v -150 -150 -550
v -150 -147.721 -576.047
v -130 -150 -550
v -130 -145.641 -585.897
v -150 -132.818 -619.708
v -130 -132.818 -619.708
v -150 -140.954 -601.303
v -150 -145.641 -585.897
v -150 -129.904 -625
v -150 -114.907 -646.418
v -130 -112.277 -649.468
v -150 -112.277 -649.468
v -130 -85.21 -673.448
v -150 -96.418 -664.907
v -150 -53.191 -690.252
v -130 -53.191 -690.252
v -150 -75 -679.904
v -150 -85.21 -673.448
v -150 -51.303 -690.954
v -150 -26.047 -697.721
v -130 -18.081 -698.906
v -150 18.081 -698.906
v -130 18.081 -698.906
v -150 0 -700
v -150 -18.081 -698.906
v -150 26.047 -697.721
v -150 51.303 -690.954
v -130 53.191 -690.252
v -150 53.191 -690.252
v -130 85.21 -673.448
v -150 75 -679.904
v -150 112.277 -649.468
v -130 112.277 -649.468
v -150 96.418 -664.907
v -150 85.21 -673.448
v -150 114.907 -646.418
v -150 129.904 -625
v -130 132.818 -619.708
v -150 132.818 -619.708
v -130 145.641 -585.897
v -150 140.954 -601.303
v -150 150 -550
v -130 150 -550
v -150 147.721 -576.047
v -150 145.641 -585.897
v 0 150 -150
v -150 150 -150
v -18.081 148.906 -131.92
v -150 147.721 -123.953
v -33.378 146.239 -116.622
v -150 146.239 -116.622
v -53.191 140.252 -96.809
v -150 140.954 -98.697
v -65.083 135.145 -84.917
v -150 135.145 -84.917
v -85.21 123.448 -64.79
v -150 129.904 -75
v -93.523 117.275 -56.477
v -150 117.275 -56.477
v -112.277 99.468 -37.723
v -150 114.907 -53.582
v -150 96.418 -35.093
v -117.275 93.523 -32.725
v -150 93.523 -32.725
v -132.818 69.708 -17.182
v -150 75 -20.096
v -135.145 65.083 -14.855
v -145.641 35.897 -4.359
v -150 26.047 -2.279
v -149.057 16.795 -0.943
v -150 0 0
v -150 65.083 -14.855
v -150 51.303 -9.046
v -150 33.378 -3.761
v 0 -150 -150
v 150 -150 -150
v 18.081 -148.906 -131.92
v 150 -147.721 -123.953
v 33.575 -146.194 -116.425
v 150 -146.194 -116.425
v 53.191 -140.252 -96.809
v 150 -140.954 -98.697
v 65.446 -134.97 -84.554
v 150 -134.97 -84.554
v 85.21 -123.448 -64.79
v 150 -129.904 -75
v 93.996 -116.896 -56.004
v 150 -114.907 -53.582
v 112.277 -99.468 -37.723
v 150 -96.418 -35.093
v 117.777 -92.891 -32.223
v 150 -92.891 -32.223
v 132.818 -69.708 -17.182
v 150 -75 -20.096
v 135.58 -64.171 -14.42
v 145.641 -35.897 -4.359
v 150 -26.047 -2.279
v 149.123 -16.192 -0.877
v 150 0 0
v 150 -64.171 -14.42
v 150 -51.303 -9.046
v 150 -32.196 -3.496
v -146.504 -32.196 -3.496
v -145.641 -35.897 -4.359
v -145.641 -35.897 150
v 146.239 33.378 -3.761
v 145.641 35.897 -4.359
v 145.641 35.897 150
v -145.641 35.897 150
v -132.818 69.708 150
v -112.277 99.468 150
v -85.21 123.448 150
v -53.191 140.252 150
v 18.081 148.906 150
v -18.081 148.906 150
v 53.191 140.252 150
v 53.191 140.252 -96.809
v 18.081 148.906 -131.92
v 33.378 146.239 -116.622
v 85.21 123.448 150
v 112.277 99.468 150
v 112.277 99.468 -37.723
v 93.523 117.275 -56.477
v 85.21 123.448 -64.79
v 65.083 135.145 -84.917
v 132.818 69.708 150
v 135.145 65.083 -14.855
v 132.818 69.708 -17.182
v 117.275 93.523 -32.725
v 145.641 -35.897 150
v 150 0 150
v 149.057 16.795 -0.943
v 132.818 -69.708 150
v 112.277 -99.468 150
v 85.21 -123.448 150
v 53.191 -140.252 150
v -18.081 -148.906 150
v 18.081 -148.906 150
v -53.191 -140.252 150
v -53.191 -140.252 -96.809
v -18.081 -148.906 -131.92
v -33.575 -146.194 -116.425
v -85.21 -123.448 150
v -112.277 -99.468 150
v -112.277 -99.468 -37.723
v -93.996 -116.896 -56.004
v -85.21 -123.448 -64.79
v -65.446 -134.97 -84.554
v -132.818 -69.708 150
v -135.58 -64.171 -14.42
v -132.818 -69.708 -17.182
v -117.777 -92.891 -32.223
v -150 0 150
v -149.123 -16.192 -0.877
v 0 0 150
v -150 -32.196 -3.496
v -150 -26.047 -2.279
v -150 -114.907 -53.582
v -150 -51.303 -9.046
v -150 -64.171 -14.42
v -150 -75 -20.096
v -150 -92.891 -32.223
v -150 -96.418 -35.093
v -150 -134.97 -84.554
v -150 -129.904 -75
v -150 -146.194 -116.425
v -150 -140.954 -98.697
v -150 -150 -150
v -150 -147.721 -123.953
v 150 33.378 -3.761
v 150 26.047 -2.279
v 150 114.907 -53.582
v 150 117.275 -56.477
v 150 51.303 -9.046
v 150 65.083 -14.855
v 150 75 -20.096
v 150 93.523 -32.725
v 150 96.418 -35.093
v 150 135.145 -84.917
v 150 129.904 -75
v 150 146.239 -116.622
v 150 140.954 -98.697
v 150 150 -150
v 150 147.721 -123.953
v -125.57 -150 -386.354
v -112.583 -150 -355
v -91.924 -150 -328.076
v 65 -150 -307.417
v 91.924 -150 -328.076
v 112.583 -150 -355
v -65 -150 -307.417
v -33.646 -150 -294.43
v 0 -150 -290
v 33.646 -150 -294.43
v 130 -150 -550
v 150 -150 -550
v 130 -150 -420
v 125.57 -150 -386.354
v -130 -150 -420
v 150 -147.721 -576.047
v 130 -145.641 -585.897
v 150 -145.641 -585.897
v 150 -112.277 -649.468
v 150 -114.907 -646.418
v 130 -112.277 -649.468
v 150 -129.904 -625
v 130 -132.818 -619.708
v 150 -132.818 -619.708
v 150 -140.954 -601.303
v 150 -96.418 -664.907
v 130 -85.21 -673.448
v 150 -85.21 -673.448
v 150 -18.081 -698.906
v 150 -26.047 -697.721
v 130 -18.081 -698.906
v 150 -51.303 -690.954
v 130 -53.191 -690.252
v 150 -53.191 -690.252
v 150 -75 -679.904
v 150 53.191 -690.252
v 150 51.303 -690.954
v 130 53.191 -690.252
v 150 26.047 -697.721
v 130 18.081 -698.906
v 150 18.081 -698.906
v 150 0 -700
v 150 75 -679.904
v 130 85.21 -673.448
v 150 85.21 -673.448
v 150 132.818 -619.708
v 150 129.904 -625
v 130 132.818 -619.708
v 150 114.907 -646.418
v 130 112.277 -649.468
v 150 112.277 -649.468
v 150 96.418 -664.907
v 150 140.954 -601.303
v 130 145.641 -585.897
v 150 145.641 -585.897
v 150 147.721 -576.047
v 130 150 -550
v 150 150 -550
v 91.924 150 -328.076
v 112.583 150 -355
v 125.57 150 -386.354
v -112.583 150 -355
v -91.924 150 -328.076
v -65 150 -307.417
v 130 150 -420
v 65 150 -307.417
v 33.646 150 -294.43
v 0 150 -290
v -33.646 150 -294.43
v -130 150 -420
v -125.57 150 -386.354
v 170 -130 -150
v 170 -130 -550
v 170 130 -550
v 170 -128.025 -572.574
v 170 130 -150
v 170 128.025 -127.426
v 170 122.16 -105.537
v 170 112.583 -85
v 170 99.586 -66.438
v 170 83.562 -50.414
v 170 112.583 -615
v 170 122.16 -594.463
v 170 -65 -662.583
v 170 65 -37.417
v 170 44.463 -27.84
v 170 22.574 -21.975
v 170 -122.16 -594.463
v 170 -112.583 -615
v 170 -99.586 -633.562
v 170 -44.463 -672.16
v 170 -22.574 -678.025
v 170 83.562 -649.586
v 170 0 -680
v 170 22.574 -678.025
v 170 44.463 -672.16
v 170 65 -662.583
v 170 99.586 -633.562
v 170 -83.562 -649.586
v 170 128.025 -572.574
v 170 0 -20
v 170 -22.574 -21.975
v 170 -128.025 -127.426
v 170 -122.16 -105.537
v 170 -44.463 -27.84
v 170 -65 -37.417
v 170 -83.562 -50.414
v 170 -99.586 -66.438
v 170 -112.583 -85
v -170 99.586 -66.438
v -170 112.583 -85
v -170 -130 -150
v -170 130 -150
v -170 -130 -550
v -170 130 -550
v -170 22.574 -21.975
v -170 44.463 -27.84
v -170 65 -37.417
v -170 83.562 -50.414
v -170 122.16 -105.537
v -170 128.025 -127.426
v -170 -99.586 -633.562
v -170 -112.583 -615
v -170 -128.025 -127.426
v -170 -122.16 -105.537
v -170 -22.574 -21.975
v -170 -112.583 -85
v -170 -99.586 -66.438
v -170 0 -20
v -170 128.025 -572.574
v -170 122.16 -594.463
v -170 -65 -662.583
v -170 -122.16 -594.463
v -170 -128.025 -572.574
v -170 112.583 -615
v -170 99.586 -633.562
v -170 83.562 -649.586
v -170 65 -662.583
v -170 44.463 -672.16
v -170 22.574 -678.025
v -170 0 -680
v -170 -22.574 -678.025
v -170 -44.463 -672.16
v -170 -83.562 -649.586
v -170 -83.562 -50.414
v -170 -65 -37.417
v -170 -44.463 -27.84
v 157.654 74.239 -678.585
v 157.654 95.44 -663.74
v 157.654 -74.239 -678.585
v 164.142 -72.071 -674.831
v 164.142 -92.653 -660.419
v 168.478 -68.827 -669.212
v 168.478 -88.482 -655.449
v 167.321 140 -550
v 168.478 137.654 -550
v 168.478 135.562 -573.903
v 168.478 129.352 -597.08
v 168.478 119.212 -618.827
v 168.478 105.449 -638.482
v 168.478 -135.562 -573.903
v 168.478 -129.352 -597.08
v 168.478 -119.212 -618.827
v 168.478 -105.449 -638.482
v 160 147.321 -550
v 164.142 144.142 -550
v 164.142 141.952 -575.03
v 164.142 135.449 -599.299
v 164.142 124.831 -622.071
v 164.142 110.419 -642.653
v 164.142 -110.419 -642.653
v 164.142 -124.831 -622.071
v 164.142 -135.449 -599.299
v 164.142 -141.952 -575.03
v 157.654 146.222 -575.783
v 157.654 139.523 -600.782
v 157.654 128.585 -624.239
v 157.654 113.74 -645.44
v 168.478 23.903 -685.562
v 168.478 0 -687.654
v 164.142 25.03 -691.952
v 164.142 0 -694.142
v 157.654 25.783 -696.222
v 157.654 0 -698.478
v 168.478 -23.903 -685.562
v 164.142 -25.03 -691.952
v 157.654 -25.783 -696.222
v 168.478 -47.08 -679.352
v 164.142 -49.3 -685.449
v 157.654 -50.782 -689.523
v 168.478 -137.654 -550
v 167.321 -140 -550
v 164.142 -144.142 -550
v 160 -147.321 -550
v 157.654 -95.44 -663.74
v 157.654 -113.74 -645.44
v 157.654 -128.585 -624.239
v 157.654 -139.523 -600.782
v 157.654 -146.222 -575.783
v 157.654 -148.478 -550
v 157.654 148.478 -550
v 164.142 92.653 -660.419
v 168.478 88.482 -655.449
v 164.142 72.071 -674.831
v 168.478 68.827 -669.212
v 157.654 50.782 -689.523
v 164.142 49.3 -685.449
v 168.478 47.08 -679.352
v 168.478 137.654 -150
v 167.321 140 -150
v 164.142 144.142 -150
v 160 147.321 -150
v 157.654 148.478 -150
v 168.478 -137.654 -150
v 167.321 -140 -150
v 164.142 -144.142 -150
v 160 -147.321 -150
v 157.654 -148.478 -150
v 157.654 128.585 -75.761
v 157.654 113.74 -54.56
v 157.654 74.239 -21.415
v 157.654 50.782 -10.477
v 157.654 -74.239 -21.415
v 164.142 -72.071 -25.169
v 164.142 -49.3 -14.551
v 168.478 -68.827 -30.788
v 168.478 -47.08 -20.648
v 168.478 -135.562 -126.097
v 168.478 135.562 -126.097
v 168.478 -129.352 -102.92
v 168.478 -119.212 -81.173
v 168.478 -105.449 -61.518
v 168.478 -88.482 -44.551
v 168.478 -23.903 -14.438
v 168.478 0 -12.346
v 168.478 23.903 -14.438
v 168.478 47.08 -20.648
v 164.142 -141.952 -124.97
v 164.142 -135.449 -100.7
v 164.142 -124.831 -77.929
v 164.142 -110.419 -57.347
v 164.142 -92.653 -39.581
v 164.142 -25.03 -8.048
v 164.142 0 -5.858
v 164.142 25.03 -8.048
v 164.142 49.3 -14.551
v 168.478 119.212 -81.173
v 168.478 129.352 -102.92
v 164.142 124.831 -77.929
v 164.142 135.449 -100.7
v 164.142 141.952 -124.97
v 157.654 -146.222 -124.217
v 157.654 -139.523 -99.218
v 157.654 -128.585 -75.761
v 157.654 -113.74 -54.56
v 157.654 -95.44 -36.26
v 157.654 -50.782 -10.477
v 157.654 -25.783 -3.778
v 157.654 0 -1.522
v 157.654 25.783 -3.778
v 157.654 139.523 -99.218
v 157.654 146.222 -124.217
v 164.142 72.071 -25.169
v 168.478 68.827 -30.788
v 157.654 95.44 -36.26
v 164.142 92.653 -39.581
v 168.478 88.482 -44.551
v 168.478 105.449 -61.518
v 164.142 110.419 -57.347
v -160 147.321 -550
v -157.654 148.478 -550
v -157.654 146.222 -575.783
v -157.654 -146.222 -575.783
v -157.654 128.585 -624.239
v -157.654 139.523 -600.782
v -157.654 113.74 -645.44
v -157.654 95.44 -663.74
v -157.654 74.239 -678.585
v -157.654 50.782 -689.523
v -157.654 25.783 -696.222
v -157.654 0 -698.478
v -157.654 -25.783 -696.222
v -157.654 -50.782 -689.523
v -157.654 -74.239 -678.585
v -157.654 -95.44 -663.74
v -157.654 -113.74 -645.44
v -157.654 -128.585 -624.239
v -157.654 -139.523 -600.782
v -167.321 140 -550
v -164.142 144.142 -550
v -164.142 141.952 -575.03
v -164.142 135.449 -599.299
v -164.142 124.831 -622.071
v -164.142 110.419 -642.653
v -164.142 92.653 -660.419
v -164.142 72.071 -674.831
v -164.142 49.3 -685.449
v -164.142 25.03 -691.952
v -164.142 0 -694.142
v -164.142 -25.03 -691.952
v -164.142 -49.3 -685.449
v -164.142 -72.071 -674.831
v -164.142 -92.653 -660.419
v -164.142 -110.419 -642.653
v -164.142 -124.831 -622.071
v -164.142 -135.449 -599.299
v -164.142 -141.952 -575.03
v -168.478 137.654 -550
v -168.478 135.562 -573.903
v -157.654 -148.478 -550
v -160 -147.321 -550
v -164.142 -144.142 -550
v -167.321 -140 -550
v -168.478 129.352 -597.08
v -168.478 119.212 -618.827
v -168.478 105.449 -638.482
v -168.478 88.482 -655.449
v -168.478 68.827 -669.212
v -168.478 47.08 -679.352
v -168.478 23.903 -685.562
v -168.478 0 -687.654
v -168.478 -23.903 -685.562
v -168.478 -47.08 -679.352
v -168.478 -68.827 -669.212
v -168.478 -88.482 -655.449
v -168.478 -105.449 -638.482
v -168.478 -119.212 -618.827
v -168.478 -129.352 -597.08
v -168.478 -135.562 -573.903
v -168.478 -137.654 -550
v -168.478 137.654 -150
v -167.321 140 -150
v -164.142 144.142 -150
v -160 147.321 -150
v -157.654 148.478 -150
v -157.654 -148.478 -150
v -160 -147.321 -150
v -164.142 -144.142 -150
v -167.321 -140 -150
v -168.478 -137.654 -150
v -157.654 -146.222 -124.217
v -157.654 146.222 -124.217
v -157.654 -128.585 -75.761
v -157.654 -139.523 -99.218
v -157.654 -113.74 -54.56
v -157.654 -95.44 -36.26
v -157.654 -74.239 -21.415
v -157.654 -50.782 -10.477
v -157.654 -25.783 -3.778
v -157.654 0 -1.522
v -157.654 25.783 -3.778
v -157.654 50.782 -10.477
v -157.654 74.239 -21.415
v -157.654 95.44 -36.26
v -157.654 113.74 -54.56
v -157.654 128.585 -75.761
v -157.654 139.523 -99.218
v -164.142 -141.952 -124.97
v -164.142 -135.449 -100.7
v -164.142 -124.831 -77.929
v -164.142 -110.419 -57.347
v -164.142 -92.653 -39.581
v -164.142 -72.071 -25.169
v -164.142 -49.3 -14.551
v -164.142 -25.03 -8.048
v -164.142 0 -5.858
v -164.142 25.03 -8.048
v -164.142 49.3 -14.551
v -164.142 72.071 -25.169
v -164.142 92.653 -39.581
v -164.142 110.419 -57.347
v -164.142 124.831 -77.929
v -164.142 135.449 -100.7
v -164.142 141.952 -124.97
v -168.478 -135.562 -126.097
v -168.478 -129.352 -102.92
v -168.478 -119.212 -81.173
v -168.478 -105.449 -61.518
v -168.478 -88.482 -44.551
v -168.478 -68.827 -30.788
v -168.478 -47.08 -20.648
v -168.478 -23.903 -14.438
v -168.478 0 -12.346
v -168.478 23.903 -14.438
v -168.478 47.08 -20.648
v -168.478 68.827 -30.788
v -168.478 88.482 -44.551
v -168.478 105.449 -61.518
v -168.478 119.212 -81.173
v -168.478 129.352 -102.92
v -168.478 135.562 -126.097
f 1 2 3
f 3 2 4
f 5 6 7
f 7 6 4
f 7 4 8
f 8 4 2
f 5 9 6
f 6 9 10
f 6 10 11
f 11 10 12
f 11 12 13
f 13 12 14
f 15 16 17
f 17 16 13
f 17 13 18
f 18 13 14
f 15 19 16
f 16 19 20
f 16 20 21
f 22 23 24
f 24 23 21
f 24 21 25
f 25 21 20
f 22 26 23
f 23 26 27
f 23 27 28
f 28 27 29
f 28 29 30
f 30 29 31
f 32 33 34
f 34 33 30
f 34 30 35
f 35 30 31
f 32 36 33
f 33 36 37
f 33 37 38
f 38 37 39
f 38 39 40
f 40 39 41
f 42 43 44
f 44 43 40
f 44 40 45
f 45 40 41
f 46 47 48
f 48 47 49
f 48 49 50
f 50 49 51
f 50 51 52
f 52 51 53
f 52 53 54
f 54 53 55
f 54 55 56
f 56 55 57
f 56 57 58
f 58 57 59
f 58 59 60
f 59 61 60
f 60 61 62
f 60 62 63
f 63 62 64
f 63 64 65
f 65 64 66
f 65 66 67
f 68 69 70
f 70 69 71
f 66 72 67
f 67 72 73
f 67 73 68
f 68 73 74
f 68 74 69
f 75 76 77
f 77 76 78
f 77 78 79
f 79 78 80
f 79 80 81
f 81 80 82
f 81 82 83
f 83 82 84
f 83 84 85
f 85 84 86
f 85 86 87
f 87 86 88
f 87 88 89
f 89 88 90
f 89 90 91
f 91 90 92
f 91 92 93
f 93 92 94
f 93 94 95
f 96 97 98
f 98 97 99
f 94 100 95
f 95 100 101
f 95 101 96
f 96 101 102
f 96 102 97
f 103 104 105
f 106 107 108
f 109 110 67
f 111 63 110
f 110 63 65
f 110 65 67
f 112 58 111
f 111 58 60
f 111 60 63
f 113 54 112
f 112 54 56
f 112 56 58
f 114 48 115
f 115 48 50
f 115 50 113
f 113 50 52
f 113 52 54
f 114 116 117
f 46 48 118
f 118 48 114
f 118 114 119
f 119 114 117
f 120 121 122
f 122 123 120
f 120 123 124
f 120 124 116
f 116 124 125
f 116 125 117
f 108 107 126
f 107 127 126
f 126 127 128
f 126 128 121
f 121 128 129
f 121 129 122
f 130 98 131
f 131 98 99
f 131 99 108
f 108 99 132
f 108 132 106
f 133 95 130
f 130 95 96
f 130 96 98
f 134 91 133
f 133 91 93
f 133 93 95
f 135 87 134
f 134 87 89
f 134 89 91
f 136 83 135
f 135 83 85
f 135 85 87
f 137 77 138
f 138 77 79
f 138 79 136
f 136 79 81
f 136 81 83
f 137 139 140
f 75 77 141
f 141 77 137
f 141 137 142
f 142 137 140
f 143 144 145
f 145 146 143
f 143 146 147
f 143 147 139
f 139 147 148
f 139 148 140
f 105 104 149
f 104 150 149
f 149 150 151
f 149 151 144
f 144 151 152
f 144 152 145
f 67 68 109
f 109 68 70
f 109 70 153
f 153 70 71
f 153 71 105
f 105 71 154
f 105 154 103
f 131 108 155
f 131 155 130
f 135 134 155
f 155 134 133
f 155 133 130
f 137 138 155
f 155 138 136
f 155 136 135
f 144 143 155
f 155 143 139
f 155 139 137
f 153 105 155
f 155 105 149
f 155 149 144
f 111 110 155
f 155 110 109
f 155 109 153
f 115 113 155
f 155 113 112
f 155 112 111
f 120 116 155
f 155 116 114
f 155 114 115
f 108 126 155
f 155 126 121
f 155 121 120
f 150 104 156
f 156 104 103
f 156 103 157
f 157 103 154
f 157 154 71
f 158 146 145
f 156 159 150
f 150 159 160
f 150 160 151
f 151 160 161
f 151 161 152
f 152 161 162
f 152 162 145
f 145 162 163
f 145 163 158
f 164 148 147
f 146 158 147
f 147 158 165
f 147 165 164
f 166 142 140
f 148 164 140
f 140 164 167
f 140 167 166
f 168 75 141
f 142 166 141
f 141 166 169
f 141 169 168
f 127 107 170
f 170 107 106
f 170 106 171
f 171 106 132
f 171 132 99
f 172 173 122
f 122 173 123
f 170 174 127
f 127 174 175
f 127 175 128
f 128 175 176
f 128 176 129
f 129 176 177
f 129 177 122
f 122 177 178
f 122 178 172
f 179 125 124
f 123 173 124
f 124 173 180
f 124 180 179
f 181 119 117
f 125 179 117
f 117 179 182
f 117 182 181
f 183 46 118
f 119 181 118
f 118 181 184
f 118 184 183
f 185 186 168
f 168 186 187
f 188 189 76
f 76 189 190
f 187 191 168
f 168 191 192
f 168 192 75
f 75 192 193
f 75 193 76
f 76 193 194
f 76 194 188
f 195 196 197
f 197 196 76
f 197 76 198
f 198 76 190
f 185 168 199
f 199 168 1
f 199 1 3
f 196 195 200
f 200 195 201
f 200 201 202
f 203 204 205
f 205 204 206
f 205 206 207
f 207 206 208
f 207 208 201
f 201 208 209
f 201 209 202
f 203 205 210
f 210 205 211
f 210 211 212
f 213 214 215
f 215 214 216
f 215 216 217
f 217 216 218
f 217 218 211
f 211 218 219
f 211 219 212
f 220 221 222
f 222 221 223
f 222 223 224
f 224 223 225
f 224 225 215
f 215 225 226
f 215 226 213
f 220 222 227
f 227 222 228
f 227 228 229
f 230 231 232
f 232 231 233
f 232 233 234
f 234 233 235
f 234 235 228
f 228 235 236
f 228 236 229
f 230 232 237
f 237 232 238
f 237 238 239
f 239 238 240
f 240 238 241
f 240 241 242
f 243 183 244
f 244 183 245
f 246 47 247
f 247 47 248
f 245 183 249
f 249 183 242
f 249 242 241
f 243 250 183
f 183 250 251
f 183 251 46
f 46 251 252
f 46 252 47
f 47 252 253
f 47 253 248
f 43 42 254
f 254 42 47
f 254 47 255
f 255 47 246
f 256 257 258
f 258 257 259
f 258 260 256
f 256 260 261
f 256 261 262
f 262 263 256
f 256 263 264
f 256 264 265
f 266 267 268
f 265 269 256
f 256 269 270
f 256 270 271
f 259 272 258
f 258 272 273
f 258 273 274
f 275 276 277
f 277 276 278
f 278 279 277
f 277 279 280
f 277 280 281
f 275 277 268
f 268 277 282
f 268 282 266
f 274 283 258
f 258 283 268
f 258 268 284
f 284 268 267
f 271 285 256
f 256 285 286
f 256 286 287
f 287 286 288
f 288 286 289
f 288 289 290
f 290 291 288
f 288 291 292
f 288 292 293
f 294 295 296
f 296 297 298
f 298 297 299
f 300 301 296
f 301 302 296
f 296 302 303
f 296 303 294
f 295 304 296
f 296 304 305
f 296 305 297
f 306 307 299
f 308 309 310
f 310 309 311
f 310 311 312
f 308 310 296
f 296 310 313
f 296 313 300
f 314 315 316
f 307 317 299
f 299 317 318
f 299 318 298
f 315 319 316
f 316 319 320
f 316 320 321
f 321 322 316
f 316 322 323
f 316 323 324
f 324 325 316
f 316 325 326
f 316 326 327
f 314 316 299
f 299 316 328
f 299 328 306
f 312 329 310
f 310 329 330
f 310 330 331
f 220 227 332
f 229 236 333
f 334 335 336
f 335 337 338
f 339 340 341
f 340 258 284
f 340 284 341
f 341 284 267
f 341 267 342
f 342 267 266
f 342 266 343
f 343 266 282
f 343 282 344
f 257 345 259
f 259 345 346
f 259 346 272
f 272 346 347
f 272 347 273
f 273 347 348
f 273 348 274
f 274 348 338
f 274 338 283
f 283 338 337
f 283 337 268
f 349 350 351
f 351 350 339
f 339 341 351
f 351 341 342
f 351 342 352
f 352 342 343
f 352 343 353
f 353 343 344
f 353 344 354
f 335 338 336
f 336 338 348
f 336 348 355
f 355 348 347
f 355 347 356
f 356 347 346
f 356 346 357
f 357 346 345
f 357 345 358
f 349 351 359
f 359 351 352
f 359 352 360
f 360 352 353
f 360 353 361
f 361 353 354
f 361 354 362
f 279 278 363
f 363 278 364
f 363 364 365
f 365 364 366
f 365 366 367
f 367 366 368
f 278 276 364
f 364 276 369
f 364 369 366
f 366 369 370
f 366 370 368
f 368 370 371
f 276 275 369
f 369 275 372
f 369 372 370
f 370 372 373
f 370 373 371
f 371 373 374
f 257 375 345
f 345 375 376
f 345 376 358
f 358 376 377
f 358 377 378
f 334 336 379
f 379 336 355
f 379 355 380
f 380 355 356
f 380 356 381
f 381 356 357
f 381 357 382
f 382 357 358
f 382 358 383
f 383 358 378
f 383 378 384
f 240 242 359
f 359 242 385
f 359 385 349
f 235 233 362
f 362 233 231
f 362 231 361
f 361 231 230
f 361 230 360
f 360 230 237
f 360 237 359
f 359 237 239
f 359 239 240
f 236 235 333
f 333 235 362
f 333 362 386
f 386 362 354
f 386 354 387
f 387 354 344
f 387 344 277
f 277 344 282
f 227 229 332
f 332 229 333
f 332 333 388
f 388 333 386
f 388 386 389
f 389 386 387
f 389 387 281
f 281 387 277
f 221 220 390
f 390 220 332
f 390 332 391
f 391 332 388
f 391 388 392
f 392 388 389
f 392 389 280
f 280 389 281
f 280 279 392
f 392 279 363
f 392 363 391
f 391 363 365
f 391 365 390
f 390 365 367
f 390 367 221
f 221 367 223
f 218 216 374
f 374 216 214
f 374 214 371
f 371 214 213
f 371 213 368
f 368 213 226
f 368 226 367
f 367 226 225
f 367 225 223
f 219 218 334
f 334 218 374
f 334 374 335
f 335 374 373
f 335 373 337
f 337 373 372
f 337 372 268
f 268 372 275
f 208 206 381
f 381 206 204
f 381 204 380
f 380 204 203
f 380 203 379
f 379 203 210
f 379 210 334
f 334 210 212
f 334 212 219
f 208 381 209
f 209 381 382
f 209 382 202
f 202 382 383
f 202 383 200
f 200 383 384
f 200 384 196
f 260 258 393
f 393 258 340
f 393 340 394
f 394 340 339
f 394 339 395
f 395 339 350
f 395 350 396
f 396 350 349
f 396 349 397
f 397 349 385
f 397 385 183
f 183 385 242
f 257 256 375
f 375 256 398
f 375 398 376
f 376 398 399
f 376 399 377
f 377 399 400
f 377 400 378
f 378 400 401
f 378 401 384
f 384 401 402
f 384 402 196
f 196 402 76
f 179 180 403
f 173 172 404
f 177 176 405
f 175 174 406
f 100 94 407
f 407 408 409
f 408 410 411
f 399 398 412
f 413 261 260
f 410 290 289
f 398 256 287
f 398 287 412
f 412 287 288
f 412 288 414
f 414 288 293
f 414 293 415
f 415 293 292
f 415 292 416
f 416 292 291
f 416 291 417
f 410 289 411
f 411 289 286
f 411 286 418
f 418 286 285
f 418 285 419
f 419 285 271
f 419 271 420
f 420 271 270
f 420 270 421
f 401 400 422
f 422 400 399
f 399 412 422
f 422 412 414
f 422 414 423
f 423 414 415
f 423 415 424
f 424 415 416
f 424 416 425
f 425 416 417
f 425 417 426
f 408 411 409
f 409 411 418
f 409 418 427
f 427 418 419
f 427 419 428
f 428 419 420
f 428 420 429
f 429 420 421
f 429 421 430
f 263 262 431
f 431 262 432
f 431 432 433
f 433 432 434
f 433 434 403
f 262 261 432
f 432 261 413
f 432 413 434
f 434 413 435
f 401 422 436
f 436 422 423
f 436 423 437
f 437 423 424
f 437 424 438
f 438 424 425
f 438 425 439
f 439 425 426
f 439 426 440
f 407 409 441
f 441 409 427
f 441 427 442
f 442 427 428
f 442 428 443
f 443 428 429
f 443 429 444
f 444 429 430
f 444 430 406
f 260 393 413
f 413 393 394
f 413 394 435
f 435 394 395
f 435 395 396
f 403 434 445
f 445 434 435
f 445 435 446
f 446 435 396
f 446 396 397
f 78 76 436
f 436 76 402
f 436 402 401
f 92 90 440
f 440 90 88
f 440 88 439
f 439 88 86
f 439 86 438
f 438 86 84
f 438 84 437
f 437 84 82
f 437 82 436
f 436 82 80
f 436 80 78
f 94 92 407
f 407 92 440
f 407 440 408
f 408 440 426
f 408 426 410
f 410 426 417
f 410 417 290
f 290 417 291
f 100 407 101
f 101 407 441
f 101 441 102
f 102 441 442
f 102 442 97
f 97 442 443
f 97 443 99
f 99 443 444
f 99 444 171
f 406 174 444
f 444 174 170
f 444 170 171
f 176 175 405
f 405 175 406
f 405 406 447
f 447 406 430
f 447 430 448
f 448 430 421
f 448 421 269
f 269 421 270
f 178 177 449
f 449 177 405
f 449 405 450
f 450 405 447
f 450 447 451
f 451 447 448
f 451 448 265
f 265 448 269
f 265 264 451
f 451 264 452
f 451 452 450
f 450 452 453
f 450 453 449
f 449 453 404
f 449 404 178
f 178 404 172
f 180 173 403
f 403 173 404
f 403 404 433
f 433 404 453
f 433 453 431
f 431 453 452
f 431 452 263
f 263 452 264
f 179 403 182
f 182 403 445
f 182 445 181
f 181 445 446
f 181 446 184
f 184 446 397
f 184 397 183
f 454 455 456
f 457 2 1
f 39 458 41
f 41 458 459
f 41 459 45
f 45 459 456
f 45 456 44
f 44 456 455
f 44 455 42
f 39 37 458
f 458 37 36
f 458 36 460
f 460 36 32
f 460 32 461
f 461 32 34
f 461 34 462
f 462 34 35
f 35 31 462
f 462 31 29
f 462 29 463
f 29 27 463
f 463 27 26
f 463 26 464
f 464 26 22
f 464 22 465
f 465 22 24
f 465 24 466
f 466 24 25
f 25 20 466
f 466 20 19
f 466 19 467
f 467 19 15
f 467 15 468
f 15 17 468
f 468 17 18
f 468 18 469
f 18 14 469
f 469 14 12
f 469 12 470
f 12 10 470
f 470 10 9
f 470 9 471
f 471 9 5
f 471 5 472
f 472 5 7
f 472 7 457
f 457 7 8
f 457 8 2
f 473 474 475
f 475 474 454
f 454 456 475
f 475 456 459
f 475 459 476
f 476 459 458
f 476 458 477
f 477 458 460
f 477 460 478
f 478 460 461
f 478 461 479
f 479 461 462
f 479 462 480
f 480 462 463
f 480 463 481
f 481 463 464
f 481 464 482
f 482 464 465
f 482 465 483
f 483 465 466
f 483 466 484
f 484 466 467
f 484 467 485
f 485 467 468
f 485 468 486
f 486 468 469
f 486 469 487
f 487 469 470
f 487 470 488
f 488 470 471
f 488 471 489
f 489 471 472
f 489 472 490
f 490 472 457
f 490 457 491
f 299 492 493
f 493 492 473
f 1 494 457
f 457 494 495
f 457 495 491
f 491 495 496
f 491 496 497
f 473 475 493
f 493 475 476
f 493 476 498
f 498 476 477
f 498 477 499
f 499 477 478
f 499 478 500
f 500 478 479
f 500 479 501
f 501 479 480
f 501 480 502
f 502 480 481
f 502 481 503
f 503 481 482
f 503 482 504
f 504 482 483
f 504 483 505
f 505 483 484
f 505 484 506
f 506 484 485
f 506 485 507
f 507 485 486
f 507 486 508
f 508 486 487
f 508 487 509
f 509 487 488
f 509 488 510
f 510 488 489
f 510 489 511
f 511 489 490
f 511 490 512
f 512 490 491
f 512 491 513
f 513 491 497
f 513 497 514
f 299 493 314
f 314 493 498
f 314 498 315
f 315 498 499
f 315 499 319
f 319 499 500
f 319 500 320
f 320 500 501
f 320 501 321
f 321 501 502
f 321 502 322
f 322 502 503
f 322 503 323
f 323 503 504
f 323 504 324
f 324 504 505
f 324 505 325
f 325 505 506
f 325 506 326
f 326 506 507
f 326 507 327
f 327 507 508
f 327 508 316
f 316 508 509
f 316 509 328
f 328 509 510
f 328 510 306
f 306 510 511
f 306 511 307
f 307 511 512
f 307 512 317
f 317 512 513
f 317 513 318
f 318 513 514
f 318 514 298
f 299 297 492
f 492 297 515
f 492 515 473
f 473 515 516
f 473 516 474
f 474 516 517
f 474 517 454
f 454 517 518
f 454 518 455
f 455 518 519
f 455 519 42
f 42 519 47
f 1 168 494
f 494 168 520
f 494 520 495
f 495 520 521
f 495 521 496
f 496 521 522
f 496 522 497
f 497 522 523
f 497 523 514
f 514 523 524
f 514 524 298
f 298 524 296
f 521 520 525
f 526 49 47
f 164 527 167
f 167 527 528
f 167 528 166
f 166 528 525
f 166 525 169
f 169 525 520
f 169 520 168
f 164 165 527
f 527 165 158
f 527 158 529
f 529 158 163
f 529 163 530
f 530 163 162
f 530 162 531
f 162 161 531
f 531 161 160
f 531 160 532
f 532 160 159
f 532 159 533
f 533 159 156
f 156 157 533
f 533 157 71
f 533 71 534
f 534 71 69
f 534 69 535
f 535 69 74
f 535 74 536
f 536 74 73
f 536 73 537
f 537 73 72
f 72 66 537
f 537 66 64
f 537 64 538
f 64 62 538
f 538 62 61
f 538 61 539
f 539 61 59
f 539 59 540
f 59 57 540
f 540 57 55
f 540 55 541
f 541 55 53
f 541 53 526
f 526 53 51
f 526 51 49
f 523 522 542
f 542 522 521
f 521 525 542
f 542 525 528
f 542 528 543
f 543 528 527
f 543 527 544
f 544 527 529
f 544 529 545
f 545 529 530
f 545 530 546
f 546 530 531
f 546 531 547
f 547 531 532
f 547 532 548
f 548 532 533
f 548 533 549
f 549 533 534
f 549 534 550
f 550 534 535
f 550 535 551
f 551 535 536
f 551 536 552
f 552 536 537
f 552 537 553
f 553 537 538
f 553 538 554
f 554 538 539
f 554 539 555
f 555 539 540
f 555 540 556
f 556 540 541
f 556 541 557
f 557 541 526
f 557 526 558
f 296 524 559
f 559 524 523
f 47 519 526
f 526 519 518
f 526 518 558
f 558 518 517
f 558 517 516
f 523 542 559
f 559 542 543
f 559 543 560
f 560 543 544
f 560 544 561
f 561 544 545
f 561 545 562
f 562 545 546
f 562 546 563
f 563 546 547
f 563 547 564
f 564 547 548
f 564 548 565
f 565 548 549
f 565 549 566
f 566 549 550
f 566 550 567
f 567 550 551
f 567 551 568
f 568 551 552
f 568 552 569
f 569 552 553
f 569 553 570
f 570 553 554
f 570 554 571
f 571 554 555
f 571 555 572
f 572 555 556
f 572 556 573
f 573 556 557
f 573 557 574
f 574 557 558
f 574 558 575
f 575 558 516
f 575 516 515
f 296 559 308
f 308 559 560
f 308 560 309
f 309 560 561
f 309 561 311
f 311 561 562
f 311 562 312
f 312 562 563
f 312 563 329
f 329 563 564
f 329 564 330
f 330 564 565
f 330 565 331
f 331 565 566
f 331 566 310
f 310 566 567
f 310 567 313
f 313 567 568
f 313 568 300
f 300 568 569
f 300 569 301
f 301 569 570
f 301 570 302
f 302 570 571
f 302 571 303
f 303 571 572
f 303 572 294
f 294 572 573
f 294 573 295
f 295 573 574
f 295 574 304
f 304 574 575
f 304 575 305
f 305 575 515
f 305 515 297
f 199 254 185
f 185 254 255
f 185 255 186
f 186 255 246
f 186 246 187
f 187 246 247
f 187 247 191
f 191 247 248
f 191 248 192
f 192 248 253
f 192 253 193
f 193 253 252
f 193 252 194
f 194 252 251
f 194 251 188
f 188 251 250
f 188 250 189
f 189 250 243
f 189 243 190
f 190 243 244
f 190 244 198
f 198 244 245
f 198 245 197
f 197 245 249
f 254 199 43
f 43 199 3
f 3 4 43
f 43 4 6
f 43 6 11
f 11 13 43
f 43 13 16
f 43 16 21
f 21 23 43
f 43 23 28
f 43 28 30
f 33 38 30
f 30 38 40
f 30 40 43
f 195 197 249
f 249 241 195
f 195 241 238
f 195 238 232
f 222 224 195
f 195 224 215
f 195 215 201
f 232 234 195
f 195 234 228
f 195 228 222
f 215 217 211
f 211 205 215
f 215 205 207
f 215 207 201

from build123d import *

# Parameters (mm, degrees)
SKETCH_1_R          = 150
EXTRUDE_1_DEPTH     = 150
EXTRUDE_2_DEPTH     = 170
FILLET_1_R          = 20
FILLET_2_R          = 20
CUT_EXTRUDE_1_DEPTH = 170


with BuildPart() as part:
    # 草图1 → 凸台-拉伸1 (new, symmetric)
    with BuildSketch(Plane.XY):
        Circle(SKETCH_1_R)
    extrude(amount=EXTRUDE_1_DEPTH, both=True)

    # 草图3 → 凸台-拉伸2 (add, symmetric)
    with BuildSketch(Plane(origin=(0, 0, 0), x_dir=(0, 0, -1), z_dir=(1, 0, 0))):
        with BuildLine():
            Line((150, 150), (550, 150))
            ThreePointArc((550, 150), (700, 0), (550, -150))
            Line((550, -150), (150, -150))
            ThreePointArc((150, -150), (0, 0), (150, 150))
        make_face()
    extrude(amount=EXTRUDE_2_DEPTH, both=True)

    # 圆角1
    fillet_1_edges = [part.edges().sort_by_distance(p)[0] for p in [
        (170, -150, -350),
        (170, 150, -350),
        (170, 0, 0),
        (170, 0, -700),
    ]]
    fillet(fillet_1_edges, radius=FILLET_1_R - 0.0001)  # a hair under: the kernel refuses the full size

    # 圆角2
    fillet_2_edges = [part.edges().sort_by_distance(p)[0] for p in [
        (-170, 0, 0),
        (-170, 0, -700),
        (-170, 150, -350),
        (-170, -150, -350),
    ]]
    fillet(fillet_2_edges, radius=FILLET_2_R - 0.0001)  # a hair under: the kernel refuses the full size

    # 草图4 → 切除-拉伸1 (cut, symmetric)
    with BuildSketch(Plane(origin=(0, 0, 0), x_dir=(1, 0, 0), z_dir=(0, 1, 0))):
        with BuildLine():
            Line((-130, 420), (-130, 938.530561272))
            Line((-130, 938.530561272), (130, 938.530561272))
            Line((130, 938.530561272), (130, 420))
            ThreePointArc((130, 420), (0, 290), (-130, 420))
        make_face()
    extrude(amount=CUT_EXTRUDE_1_DEPTH, both=True, mode=Mode.SUBTRACT)


solid = part.part
